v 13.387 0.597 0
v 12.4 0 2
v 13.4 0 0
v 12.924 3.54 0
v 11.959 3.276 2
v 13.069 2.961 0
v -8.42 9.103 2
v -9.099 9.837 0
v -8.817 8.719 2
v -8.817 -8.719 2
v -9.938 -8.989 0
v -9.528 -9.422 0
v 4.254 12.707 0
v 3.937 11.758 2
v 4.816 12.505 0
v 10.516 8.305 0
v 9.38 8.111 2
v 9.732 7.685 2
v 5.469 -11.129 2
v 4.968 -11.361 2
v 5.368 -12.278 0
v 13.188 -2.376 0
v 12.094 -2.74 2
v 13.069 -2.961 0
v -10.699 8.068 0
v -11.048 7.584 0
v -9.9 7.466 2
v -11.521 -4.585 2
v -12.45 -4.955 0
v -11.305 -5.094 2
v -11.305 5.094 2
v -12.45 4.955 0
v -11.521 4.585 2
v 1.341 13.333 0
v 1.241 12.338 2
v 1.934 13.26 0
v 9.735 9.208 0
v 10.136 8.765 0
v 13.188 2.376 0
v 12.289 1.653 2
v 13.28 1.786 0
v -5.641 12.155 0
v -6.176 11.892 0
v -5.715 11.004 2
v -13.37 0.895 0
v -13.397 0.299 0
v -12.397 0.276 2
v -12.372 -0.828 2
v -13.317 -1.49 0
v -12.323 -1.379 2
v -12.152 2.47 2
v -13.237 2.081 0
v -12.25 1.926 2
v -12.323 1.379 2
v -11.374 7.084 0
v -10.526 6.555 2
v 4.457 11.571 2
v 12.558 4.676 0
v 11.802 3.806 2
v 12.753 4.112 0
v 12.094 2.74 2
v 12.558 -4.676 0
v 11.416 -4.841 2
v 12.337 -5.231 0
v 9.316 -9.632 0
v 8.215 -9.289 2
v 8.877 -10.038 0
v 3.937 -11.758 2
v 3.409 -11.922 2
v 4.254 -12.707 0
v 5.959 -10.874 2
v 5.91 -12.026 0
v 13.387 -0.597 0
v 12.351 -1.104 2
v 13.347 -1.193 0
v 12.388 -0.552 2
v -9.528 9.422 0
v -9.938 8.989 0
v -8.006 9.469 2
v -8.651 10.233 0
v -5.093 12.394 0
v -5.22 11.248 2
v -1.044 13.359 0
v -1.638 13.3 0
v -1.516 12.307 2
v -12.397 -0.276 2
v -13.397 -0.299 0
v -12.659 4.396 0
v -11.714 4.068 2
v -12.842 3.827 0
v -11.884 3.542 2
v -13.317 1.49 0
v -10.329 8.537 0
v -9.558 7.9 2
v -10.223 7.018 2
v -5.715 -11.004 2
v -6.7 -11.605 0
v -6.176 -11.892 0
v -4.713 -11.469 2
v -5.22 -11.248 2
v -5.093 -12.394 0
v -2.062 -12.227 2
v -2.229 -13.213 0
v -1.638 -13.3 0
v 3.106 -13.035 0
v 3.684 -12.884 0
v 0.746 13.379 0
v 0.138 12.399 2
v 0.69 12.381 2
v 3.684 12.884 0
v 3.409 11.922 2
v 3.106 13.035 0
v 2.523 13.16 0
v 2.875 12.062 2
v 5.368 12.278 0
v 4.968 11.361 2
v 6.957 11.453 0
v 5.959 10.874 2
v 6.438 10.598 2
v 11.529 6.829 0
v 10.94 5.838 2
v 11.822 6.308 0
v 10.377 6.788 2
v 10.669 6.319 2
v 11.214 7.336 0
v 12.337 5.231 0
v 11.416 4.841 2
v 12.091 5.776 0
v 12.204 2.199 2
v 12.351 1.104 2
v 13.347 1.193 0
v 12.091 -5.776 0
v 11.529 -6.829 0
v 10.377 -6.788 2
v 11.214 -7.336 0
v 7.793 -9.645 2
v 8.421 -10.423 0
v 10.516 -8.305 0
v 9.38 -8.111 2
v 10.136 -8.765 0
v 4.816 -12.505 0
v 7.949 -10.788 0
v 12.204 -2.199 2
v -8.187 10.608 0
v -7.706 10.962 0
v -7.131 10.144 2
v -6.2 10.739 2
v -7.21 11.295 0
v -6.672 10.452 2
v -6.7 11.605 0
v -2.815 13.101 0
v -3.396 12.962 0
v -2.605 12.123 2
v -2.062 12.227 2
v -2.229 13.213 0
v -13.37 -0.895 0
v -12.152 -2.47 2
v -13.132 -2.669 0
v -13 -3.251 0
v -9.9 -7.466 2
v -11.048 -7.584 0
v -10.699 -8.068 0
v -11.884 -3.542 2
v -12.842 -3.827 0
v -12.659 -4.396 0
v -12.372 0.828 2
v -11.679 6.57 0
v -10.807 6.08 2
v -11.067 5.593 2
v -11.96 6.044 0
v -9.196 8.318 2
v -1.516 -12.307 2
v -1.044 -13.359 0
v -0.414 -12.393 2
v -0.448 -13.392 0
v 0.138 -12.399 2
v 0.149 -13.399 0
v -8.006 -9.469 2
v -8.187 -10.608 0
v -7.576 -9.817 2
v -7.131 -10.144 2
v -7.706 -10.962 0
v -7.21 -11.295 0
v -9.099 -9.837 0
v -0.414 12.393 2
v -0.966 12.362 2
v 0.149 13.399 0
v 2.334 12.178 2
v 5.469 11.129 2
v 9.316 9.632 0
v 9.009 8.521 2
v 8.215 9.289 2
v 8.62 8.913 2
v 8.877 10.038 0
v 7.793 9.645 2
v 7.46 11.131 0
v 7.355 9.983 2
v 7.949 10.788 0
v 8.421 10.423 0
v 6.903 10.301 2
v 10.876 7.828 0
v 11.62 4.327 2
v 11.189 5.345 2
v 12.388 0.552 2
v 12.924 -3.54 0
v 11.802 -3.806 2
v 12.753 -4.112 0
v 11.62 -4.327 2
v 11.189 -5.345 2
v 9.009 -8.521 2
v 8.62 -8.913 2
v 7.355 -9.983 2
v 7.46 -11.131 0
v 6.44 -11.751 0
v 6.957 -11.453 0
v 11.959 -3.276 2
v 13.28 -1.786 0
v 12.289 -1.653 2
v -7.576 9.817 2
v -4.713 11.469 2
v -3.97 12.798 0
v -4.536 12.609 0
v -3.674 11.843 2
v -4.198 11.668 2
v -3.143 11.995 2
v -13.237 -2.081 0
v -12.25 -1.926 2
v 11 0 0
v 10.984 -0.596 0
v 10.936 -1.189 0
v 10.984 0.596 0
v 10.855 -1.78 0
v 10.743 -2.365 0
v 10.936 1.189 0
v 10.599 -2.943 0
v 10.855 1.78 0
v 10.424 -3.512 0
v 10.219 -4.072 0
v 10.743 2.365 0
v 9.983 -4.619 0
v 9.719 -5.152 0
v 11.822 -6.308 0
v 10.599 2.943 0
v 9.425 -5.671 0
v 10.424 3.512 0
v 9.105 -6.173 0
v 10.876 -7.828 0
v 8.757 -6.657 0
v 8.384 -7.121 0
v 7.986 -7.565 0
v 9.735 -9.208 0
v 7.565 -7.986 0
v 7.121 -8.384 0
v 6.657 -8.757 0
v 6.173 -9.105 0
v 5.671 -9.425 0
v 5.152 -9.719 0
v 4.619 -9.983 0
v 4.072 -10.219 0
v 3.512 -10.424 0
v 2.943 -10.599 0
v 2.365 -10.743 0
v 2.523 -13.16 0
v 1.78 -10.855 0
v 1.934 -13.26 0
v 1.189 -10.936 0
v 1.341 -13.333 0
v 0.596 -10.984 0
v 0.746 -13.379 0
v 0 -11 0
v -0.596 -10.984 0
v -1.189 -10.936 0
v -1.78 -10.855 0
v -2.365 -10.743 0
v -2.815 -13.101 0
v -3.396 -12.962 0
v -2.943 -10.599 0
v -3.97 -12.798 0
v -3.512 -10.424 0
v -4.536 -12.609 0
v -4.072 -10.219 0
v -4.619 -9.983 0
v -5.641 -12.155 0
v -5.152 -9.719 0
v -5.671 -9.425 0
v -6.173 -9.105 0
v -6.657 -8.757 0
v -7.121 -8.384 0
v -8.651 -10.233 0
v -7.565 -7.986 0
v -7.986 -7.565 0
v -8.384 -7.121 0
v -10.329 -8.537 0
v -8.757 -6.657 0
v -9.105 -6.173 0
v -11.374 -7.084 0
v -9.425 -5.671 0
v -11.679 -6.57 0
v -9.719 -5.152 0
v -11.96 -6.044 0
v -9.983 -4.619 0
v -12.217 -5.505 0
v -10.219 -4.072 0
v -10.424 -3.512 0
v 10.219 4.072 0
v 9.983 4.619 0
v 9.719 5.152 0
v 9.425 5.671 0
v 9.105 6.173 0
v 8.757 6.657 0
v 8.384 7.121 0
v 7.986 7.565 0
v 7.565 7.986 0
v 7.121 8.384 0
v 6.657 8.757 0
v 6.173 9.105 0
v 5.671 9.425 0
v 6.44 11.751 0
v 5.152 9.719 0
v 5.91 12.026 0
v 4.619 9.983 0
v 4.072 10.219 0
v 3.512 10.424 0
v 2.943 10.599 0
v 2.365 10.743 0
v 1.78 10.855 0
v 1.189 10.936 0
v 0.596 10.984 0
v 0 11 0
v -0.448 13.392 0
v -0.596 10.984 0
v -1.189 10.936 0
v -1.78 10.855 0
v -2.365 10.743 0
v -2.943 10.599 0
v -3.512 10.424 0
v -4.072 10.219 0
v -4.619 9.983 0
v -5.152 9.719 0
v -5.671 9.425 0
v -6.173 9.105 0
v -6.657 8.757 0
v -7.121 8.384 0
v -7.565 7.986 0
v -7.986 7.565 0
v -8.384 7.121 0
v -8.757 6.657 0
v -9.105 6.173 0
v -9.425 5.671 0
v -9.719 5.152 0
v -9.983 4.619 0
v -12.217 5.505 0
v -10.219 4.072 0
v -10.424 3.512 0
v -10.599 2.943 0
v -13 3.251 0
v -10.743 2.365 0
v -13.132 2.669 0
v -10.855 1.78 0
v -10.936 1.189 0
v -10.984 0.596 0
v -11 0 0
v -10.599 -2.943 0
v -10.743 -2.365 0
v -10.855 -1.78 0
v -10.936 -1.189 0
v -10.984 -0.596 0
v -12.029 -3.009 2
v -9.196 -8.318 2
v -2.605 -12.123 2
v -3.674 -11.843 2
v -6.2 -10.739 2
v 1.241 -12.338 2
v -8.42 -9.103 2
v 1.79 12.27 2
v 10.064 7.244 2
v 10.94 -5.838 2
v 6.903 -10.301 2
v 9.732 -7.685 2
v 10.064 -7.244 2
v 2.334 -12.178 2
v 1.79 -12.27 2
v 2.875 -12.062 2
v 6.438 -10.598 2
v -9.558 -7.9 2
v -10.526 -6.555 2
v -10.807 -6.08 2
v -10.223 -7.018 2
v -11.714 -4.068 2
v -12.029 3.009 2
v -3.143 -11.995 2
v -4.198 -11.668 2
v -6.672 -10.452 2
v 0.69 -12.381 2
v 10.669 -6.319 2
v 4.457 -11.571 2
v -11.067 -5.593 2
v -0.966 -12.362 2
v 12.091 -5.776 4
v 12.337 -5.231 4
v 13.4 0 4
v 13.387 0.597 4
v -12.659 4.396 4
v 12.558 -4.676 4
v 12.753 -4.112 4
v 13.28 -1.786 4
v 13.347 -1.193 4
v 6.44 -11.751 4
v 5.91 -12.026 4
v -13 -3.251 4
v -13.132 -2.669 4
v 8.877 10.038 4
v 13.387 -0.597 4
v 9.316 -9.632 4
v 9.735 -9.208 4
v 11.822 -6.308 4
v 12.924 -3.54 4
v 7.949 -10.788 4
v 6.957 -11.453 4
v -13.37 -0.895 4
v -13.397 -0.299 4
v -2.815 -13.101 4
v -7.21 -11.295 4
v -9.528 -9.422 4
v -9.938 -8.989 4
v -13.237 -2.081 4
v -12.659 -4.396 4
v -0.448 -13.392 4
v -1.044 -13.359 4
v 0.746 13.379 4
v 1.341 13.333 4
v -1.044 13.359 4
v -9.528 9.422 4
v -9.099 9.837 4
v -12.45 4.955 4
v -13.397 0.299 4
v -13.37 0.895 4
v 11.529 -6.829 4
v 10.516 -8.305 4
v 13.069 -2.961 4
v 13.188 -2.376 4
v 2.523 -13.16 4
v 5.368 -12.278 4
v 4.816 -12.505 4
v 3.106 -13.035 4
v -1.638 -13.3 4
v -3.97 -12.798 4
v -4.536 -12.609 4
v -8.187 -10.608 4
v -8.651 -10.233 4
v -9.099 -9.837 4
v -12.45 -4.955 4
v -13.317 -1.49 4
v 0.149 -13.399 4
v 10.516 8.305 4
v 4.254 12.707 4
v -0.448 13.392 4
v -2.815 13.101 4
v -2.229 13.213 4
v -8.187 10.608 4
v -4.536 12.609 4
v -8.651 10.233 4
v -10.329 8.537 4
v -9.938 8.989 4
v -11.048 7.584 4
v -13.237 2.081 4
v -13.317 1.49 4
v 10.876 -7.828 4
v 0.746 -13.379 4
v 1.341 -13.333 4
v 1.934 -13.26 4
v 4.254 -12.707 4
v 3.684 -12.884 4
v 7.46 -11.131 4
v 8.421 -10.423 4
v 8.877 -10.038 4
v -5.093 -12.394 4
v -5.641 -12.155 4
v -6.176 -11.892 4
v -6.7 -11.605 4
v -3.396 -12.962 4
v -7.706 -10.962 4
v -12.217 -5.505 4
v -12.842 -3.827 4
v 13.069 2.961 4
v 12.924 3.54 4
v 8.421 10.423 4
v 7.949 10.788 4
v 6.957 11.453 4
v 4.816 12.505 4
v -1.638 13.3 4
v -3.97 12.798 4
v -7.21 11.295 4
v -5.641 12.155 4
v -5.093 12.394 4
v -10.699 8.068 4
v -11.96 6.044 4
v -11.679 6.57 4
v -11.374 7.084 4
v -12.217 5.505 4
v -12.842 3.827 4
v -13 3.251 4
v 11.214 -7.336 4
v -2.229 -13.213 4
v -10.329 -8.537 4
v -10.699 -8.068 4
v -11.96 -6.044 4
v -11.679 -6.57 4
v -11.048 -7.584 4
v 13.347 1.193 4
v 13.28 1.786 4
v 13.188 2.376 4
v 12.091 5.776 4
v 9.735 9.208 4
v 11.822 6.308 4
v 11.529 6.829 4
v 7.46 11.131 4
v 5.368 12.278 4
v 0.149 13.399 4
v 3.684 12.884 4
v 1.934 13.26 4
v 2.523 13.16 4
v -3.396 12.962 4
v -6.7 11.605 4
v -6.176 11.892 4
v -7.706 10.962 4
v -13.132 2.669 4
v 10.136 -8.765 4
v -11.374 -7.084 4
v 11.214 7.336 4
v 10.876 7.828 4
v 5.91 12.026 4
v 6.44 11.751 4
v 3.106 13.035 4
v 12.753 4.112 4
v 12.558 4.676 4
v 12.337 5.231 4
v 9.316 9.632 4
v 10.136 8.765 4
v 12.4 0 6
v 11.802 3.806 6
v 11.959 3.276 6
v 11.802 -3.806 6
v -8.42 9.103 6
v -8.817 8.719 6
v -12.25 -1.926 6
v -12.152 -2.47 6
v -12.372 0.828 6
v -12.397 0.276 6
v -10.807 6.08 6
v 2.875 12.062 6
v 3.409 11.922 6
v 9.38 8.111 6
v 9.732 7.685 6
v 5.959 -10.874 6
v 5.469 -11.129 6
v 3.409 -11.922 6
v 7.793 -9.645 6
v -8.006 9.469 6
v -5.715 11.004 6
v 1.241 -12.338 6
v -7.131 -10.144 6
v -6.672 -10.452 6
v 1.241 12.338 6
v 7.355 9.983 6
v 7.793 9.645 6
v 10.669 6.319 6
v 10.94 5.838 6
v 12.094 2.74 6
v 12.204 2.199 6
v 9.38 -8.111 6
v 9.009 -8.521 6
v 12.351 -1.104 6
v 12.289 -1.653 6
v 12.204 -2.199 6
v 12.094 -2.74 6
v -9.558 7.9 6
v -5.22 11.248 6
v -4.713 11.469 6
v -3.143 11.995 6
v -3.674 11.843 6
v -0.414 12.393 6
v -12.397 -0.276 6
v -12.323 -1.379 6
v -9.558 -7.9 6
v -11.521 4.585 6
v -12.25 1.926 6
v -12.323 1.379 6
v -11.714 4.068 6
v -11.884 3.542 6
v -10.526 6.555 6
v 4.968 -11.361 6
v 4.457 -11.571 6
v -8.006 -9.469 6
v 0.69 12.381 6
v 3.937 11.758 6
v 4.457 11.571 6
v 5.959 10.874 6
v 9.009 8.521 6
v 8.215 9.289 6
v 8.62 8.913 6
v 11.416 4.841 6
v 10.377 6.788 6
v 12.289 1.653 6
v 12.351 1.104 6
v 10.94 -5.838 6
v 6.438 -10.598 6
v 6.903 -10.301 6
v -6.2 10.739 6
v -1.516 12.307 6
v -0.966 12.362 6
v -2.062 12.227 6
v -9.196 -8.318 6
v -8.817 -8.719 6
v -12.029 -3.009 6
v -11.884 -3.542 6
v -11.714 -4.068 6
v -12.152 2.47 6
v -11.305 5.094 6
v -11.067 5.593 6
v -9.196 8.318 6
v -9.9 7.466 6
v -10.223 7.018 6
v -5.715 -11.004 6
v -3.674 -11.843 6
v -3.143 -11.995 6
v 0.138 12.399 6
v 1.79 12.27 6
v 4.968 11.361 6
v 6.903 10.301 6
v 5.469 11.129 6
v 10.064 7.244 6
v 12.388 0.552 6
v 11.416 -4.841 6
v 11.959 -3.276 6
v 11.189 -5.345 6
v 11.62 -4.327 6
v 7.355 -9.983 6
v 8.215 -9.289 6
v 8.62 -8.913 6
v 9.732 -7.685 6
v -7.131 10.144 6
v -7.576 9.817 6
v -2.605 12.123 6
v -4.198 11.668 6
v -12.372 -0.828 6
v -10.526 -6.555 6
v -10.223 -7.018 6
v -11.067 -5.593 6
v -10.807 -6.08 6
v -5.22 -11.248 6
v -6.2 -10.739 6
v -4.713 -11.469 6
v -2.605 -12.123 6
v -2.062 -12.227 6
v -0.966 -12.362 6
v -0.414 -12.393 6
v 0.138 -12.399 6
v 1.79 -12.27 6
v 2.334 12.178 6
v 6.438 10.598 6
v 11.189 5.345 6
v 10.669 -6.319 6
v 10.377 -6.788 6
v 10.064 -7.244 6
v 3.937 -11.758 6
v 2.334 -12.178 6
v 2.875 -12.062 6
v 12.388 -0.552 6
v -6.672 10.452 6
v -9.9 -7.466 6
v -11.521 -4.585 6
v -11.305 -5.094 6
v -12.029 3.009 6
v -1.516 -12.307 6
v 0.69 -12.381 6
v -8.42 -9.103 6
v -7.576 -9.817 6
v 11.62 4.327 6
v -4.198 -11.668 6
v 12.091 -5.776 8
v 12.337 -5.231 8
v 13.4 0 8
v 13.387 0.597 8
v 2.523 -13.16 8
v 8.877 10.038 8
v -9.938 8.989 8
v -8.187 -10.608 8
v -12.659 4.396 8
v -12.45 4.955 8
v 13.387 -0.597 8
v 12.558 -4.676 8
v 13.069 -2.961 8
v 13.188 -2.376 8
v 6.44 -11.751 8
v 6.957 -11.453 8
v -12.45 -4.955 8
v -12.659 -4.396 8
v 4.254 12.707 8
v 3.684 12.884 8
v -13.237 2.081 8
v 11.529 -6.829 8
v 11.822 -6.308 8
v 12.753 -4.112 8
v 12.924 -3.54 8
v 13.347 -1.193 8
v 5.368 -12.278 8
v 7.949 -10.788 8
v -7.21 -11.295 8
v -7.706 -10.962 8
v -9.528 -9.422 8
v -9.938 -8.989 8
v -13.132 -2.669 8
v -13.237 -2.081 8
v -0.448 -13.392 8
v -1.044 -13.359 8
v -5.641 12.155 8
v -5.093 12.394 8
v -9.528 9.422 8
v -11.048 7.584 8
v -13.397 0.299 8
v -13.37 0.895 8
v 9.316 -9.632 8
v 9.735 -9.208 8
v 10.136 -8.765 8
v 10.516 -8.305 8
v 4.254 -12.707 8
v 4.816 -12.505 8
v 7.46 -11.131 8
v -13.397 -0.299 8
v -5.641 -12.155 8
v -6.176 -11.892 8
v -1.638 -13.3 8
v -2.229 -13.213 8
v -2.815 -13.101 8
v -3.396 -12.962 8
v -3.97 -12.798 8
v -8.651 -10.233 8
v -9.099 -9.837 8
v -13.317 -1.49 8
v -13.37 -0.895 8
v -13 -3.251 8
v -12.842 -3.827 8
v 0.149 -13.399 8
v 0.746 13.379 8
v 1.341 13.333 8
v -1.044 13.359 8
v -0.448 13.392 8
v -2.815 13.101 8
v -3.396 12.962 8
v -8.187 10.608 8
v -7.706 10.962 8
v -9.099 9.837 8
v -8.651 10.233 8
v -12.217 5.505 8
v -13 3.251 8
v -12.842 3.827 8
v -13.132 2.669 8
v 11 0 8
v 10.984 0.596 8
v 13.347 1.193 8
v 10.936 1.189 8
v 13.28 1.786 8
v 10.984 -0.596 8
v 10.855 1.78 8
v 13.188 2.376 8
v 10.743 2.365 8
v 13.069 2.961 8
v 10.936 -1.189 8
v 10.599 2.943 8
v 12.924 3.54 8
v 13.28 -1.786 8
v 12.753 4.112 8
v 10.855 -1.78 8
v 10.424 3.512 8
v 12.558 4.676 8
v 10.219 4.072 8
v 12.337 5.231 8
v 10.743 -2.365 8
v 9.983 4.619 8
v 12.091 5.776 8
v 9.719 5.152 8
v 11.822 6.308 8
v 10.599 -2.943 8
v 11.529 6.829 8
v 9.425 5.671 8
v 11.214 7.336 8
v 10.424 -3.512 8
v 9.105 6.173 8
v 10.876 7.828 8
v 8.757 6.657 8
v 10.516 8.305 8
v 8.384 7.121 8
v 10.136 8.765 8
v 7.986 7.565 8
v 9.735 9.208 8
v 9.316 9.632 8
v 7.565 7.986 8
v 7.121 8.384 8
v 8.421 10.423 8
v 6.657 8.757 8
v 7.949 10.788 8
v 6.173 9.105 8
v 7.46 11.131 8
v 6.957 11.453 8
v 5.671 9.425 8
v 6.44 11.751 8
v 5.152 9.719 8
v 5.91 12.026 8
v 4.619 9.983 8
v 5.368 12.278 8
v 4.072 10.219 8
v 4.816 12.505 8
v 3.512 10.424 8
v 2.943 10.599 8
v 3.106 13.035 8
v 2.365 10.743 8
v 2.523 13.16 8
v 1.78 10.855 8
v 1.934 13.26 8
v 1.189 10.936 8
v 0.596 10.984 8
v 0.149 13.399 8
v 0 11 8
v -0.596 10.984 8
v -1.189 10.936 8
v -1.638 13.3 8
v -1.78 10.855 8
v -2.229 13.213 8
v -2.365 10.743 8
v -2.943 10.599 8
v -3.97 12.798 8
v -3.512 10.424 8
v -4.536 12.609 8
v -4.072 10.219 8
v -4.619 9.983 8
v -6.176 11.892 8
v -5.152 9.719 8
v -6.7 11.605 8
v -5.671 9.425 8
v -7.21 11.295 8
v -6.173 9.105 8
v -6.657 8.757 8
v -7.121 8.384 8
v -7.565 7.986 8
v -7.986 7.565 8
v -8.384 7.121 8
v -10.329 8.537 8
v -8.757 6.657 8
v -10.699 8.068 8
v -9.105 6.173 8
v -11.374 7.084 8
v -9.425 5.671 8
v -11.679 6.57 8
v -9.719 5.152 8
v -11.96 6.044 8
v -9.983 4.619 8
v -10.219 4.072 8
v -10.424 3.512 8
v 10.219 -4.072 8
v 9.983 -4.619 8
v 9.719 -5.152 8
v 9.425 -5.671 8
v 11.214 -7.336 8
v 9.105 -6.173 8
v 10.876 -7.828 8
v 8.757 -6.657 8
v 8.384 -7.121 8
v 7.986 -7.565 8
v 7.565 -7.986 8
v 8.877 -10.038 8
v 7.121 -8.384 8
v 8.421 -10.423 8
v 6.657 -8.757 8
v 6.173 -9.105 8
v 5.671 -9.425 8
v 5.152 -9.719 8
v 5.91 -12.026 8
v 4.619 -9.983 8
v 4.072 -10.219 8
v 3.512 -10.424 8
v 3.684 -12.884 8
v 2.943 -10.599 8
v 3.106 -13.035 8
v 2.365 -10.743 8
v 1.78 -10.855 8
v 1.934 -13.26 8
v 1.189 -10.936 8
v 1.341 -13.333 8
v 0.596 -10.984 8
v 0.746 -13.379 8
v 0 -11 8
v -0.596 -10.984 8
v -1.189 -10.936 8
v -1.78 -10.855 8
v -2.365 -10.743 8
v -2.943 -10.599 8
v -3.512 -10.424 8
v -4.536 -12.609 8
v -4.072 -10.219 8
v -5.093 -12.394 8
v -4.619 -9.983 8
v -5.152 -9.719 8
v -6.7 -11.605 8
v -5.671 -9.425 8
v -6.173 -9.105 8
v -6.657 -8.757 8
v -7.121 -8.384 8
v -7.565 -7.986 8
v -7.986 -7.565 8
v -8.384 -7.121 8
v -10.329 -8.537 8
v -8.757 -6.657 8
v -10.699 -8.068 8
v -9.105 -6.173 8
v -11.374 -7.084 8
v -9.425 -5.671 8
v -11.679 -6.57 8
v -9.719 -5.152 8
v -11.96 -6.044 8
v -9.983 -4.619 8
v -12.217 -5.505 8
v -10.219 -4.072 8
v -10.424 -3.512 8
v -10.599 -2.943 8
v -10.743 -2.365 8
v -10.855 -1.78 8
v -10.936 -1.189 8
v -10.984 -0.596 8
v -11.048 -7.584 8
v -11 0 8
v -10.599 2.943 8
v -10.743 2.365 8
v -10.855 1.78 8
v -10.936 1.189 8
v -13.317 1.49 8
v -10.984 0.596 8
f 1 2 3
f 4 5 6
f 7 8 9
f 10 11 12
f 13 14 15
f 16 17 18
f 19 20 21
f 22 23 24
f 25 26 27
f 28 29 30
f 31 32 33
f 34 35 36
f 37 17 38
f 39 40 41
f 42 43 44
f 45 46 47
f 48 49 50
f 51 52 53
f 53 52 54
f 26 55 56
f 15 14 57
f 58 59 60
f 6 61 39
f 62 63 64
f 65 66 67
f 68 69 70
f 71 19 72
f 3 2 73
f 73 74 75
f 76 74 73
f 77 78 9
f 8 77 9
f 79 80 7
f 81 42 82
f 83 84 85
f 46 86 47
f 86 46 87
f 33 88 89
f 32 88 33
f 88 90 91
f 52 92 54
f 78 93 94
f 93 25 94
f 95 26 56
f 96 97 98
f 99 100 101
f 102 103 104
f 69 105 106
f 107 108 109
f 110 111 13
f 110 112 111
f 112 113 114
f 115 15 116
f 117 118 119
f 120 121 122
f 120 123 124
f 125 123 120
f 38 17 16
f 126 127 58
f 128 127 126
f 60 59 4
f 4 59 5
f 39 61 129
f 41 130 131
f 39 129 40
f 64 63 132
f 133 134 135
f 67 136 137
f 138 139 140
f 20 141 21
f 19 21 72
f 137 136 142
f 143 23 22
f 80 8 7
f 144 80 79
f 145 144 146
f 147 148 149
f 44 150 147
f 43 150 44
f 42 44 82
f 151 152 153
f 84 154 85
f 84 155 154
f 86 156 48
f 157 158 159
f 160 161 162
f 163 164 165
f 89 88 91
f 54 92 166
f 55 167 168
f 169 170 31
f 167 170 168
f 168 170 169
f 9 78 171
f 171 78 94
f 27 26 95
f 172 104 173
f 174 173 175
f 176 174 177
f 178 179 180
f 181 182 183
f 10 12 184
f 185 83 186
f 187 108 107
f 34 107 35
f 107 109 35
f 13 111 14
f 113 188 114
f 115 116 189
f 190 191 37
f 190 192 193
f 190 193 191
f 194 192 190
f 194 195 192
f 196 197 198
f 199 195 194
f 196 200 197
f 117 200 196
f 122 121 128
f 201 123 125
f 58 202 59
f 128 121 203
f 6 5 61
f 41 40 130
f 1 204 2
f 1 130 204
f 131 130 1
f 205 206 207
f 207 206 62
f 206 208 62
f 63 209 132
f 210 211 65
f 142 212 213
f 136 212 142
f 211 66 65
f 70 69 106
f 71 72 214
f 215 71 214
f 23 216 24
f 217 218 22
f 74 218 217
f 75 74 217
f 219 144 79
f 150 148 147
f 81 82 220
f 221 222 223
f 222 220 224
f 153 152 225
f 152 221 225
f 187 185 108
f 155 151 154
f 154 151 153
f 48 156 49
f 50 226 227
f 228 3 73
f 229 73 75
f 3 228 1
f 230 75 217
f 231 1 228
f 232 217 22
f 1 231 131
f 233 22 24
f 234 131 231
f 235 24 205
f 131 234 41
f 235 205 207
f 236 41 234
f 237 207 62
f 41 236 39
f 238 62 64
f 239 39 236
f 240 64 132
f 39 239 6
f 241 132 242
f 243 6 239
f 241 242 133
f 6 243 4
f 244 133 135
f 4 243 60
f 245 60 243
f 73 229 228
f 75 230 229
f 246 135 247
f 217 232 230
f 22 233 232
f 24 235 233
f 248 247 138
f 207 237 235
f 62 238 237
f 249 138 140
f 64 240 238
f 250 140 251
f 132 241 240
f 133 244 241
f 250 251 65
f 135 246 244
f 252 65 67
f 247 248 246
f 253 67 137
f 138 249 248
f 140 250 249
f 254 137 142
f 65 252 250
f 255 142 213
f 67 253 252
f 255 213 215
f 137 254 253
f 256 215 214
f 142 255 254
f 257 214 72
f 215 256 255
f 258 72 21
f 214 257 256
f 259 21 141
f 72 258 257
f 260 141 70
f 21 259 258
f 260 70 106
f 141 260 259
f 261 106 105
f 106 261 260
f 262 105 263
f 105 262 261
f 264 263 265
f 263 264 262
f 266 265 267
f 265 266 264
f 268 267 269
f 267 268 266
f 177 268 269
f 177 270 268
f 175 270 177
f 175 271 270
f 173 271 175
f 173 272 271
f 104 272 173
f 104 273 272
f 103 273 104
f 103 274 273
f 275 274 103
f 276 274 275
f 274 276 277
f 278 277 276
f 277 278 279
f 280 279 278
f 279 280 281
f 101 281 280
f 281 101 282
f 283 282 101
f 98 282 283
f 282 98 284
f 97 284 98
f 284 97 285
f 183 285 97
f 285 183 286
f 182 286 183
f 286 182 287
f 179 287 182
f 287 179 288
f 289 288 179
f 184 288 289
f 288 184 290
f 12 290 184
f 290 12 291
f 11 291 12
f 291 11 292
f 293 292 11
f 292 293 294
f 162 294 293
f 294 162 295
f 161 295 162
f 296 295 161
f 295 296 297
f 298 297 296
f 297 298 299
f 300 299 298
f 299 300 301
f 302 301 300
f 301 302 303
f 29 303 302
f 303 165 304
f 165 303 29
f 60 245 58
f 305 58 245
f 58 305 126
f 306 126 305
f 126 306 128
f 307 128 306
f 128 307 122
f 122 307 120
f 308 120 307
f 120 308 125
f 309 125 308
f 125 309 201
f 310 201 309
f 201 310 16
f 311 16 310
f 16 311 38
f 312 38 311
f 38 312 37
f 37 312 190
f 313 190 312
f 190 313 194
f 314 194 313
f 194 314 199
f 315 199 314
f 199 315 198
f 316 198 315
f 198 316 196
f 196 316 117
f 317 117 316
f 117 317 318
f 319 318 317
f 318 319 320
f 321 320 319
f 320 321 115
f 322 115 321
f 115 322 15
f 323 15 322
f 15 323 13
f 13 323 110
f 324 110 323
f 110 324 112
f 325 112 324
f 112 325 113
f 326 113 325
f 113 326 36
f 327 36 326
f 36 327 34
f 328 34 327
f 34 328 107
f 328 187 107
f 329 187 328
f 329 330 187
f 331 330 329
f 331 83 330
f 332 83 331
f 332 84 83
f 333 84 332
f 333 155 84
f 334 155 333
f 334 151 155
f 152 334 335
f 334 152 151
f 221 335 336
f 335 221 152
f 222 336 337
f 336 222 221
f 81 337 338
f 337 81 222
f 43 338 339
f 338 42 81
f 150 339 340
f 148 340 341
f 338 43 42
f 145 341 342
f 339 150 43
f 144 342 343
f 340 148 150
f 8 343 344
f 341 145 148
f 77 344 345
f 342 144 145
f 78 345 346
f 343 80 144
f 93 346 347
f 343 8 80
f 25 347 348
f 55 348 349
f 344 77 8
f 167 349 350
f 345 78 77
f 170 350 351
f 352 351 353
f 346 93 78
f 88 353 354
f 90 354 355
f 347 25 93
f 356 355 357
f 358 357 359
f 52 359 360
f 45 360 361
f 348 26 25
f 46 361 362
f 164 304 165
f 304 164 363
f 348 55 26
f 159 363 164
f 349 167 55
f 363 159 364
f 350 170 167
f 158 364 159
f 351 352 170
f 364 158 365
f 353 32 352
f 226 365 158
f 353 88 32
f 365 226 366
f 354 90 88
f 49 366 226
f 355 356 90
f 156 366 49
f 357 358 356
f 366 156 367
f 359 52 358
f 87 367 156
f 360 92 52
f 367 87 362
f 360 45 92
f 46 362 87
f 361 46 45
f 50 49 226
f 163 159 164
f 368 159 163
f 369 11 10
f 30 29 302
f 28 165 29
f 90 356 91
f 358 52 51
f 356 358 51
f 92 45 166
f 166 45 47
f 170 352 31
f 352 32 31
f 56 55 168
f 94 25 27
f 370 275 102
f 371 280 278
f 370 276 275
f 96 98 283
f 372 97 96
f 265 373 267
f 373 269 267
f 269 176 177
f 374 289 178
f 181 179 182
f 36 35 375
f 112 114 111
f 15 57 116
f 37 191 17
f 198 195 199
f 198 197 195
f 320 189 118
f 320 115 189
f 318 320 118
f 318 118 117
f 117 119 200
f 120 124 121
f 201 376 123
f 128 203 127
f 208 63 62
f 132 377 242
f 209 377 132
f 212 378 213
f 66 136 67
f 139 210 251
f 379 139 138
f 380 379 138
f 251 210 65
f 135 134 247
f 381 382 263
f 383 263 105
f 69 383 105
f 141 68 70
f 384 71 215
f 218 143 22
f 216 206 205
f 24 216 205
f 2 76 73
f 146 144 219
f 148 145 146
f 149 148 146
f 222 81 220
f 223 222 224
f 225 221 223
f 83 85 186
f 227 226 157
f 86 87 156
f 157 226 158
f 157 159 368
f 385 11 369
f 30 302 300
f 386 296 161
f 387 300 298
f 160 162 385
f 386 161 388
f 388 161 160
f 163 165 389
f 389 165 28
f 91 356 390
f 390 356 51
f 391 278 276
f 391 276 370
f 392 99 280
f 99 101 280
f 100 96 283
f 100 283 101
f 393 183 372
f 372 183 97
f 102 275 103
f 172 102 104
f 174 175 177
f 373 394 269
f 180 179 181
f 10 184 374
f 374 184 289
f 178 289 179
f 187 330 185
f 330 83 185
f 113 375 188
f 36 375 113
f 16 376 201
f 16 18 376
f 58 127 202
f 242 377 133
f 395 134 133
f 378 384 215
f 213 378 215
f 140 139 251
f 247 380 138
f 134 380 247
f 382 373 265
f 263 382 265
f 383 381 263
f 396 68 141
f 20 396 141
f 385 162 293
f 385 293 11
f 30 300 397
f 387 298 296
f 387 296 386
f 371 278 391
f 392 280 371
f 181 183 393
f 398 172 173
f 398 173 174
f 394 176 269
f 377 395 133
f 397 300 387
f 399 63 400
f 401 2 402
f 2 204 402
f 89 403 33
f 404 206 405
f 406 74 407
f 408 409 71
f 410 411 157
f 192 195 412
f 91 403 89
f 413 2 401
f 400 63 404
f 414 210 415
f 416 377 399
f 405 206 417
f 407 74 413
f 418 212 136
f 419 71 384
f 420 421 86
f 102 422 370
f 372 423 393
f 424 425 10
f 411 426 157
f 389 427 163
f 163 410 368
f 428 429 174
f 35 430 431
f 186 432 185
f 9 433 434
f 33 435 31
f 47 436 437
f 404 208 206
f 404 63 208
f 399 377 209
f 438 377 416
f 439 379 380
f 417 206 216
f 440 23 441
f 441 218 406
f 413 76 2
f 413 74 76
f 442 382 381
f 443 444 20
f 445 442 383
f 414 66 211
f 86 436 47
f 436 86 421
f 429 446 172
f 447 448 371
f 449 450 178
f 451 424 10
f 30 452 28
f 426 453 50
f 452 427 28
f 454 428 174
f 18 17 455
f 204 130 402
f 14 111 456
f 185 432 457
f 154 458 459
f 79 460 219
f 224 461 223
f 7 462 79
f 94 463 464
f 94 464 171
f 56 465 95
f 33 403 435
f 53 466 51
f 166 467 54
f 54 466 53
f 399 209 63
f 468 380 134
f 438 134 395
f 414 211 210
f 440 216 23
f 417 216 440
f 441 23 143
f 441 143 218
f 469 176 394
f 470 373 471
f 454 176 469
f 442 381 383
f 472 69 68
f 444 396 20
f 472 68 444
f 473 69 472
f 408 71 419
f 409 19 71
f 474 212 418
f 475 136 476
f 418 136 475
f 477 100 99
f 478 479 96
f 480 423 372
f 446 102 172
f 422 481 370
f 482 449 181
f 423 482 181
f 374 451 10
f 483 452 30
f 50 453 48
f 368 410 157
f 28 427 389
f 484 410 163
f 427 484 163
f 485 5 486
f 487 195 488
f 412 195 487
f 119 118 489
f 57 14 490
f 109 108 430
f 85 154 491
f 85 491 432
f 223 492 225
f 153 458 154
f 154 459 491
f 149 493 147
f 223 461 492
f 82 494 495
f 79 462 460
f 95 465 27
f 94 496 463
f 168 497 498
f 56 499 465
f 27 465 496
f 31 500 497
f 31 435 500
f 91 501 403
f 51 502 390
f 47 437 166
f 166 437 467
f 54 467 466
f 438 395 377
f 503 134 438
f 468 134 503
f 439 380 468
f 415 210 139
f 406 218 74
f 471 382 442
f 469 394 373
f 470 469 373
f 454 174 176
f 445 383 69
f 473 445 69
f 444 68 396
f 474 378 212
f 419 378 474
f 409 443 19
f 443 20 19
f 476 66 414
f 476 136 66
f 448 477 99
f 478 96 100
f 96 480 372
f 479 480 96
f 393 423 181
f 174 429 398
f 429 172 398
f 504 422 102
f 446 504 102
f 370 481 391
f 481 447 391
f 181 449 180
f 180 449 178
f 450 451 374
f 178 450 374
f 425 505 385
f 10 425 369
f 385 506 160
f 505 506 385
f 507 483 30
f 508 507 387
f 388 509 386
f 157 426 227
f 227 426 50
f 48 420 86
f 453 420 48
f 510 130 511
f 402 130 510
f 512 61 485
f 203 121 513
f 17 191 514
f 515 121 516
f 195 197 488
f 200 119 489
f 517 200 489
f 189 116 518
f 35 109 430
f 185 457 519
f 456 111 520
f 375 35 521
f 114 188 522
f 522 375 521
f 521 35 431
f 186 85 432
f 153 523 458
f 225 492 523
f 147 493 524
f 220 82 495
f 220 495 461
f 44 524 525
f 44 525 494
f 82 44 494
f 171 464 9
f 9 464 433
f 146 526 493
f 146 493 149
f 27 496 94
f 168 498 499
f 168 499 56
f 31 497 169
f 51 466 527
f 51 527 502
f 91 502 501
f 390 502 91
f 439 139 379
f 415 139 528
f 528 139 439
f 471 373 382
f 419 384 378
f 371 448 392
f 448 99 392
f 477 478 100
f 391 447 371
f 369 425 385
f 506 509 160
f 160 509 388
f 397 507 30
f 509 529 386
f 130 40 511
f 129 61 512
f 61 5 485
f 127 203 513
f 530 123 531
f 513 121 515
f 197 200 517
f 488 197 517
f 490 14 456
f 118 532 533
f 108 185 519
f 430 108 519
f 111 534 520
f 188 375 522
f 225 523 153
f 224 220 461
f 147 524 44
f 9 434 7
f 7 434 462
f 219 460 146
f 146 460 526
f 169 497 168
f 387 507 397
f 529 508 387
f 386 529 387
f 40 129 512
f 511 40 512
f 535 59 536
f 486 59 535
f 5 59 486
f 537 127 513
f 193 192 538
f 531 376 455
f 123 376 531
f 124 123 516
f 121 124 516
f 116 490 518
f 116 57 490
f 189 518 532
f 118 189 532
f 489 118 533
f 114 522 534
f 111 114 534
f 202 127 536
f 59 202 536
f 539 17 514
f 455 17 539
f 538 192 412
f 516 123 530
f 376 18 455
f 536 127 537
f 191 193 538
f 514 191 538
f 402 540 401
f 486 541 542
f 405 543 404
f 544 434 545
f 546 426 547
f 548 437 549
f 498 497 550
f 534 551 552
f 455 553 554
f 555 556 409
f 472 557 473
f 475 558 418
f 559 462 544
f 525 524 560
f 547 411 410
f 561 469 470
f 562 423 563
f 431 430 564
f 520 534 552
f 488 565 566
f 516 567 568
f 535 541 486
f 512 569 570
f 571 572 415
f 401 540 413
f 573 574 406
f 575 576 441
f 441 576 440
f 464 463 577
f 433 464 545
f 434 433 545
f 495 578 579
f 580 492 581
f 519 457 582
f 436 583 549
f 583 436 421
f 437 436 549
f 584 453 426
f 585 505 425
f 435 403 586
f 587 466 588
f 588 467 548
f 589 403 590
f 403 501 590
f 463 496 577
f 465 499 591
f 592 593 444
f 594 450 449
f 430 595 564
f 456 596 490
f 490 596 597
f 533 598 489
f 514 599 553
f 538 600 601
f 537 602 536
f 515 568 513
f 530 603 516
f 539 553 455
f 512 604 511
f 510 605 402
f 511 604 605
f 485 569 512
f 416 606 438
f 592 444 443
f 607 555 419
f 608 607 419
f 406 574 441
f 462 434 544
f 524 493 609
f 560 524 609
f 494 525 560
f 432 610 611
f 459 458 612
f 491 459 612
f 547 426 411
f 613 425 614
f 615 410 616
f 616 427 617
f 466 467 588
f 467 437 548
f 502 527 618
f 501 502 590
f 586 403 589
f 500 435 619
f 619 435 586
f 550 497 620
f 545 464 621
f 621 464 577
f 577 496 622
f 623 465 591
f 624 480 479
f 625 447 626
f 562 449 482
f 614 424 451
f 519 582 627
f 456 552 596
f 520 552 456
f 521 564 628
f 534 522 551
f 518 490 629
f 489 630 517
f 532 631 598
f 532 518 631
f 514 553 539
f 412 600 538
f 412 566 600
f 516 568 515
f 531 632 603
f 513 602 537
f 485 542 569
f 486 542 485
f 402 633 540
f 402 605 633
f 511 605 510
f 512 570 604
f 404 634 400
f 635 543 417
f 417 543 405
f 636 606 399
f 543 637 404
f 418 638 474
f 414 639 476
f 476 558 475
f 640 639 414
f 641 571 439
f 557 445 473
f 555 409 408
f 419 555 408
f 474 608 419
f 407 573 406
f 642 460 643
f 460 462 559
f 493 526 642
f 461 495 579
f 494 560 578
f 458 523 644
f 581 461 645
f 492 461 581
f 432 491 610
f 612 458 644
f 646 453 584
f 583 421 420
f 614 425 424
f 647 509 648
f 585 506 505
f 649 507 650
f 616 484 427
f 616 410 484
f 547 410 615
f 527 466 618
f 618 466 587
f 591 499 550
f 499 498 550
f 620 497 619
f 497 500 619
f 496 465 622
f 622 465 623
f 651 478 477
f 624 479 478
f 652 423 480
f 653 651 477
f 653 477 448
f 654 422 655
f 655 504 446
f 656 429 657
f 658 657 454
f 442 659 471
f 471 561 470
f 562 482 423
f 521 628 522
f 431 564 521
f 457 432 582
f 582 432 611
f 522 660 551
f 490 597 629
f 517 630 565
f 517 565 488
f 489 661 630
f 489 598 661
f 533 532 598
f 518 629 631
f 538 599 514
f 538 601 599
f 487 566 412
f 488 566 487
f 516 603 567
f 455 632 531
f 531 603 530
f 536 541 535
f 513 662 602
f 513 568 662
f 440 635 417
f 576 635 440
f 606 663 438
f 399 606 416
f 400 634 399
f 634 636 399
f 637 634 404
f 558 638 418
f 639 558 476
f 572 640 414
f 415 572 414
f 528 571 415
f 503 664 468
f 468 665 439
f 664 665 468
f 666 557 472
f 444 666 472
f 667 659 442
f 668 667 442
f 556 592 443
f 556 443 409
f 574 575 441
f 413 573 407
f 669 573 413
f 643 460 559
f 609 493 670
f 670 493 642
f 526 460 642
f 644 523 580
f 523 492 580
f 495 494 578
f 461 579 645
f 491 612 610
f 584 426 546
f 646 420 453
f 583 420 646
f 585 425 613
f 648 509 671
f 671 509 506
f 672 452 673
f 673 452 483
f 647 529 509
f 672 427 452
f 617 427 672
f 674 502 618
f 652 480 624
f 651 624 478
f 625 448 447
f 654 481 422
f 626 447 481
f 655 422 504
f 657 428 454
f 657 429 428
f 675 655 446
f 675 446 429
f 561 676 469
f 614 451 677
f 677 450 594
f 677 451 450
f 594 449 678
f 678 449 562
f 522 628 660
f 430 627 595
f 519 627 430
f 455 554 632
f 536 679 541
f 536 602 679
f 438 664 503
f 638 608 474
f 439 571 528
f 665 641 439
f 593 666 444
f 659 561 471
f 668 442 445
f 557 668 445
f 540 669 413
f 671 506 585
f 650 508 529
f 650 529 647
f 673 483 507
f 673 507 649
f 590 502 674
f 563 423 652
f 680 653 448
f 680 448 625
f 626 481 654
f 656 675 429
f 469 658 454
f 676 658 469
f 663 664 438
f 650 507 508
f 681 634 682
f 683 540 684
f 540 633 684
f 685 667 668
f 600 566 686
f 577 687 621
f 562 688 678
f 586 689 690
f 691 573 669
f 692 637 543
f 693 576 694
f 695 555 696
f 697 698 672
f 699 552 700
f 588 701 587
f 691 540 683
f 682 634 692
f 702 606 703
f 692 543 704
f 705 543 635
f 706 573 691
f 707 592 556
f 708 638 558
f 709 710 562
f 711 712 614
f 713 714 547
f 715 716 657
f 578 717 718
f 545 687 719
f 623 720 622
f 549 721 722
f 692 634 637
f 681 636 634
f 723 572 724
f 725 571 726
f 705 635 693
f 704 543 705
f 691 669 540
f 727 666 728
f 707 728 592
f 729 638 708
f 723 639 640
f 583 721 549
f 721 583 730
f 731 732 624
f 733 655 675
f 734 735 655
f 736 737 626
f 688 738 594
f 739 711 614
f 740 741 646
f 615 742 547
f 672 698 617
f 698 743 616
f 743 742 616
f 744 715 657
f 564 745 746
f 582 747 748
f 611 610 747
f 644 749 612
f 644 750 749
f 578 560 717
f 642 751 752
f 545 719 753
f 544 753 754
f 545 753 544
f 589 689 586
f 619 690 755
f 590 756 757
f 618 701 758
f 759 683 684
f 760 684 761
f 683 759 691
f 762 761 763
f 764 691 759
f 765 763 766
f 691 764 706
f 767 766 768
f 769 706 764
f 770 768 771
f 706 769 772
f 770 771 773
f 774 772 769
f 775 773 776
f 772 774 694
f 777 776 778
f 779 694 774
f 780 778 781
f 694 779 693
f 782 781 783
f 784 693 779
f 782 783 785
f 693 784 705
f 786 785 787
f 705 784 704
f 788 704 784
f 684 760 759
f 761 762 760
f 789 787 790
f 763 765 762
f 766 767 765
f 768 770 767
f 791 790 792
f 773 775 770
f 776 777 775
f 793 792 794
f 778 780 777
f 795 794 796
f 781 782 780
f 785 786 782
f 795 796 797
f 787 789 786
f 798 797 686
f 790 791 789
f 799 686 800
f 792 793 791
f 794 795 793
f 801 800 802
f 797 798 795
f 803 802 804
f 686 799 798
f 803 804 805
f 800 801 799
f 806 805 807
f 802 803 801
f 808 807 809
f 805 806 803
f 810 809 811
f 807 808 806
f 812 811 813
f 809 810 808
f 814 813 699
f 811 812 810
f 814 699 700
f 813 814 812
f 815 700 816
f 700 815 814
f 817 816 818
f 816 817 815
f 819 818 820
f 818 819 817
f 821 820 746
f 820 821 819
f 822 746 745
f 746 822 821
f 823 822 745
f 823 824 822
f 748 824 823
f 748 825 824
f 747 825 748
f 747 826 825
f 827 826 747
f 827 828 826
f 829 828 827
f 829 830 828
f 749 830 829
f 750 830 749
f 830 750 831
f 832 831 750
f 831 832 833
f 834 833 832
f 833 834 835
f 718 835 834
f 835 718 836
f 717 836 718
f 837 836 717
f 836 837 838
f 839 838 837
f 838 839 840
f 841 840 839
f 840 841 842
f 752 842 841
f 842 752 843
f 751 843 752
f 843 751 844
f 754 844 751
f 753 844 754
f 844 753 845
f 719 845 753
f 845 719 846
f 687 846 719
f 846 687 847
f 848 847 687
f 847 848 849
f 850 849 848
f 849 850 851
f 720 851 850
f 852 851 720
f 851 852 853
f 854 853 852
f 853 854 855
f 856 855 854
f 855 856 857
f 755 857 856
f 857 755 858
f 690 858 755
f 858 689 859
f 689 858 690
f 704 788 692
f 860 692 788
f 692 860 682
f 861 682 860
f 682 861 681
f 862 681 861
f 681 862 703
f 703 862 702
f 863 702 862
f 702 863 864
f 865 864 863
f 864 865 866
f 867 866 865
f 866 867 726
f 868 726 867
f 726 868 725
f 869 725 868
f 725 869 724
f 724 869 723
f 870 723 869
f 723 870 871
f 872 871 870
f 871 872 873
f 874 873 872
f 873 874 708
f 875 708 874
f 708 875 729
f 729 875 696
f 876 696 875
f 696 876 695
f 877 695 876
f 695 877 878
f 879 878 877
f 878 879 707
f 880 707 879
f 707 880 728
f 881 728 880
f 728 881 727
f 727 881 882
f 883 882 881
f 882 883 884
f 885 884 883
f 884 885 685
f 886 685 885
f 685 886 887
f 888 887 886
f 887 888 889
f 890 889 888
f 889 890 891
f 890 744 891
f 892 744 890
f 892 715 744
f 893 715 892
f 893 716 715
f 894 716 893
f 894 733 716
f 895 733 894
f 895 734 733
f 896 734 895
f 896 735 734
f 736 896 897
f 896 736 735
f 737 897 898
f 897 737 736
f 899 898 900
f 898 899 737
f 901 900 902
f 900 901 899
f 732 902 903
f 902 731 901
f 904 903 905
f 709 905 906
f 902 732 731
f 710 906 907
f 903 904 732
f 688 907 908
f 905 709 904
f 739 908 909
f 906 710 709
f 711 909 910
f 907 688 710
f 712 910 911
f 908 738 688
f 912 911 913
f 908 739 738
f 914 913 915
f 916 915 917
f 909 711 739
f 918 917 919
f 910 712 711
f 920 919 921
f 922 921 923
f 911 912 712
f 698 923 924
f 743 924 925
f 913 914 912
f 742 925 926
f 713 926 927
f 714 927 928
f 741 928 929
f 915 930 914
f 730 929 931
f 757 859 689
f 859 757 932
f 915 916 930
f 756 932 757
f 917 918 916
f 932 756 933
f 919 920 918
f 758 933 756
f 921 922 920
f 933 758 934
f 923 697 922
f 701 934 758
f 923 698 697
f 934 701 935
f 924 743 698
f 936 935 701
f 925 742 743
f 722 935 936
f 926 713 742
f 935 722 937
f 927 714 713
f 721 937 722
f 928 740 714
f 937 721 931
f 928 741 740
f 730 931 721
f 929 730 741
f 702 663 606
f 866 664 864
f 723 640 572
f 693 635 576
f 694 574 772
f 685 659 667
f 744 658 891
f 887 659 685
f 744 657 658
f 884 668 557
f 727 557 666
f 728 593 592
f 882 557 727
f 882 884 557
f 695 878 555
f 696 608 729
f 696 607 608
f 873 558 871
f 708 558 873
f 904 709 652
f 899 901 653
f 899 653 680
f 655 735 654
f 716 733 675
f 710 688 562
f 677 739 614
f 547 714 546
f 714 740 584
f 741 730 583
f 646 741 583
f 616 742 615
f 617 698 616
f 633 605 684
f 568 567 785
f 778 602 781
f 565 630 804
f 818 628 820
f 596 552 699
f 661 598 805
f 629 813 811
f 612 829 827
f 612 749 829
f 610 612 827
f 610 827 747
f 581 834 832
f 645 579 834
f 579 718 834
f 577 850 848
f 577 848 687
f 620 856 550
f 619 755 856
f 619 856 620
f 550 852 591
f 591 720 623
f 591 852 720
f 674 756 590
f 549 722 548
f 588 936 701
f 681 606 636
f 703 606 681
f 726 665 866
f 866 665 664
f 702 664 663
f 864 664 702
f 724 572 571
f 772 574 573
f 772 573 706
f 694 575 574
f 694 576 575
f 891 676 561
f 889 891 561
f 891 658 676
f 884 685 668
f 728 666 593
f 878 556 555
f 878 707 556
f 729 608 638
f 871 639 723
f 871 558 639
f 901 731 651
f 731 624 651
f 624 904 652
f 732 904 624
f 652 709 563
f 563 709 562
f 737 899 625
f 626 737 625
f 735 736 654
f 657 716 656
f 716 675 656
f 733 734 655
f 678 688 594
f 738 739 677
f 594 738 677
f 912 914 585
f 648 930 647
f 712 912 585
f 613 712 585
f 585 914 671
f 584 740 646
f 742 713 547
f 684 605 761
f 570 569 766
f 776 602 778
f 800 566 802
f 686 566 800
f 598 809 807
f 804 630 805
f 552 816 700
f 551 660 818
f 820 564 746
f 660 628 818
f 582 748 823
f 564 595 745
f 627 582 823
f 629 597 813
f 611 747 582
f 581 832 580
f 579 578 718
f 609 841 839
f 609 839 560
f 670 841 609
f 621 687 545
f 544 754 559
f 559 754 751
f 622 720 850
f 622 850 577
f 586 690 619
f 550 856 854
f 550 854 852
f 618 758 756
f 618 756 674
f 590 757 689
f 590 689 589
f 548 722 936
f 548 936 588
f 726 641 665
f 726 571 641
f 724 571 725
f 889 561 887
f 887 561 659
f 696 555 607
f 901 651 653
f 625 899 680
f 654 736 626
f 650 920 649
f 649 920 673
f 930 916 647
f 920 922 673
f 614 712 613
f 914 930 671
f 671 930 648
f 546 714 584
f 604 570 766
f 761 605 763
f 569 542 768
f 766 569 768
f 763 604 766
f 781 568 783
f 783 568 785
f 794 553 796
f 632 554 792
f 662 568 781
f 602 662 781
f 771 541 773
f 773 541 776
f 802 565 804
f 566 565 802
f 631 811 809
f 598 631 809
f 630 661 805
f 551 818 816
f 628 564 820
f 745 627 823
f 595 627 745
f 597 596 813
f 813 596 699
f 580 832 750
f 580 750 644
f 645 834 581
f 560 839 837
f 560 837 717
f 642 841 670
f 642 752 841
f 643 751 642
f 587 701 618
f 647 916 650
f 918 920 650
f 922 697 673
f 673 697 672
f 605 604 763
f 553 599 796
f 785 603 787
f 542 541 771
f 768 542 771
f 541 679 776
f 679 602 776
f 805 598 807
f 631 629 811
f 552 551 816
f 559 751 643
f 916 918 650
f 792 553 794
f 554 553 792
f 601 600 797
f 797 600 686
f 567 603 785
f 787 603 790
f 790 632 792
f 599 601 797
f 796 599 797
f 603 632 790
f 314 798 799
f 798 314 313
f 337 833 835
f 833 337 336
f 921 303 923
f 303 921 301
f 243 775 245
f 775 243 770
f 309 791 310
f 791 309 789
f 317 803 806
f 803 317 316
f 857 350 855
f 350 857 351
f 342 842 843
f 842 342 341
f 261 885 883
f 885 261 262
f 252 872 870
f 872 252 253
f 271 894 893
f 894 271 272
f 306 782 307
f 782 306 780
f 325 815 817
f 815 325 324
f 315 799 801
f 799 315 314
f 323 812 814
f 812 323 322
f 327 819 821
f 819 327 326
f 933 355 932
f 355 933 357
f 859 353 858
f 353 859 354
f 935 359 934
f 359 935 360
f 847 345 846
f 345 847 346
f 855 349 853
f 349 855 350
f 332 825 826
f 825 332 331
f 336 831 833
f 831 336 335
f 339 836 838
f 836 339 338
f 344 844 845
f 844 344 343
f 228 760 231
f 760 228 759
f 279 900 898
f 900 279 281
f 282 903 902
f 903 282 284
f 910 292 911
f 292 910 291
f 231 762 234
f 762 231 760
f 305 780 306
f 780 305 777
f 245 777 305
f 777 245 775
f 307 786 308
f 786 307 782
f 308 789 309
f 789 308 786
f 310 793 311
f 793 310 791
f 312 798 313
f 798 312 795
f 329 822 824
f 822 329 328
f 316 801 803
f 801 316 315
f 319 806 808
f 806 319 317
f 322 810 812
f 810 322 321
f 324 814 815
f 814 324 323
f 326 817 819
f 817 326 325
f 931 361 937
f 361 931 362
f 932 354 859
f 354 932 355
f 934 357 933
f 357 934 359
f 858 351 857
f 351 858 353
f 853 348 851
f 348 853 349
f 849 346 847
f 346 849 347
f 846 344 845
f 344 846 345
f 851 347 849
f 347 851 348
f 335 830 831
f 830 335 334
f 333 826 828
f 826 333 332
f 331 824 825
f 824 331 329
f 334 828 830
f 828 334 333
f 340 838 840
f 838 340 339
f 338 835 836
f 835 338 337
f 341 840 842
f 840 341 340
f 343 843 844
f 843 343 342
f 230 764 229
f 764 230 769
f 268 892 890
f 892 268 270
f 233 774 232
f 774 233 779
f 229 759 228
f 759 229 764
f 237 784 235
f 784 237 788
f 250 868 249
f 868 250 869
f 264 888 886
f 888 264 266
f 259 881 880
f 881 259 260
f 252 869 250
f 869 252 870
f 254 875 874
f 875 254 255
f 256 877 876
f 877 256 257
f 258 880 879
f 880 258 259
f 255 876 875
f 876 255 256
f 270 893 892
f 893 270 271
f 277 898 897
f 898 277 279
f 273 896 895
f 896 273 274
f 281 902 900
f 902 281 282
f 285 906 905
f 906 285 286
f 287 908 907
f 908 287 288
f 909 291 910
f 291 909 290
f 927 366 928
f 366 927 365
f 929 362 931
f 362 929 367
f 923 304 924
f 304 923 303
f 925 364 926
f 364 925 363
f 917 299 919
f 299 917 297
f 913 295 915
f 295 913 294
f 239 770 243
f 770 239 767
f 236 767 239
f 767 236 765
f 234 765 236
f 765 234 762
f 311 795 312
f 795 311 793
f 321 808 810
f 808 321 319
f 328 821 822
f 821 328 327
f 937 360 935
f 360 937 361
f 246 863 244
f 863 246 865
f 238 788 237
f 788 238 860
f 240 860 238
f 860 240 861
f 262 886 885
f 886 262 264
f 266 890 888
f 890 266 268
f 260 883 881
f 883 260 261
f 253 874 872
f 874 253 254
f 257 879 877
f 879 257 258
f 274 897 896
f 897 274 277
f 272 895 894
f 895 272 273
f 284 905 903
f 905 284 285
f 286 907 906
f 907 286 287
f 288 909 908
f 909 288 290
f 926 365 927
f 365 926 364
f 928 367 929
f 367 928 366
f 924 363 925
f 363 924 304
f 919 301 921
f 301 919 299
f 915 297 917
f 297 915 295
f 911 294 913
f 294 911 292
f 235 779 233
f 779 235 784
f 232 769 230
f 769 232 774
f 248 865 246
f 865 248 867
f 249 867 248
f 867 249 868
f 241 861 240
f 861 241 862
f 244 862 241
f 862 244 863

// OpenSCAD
$fa = .6;
$fs = .6;

module ringLayer(layerTranslate, layerHeight=2, outerWidth=13.4, innerWidth=12.4) {
    o = layerTranslate % 2 == 0 ? outerWidth : innerWidth;
    i = layerTranslate % 2 == 0 ? innerWidth : outerWidth;

    translate([0, 0, layerTranslate * layerHeight])
          cylinder (h=layerHeight, r=o, r2=i);
}

difference () {
    union () {
        ringLayer(0);
        ringLayer(1);
        ringLayer(2);
        ringLayer(3);
    }
    translate([0,0,-1])
        cylinder (h=10, r=11);
}
